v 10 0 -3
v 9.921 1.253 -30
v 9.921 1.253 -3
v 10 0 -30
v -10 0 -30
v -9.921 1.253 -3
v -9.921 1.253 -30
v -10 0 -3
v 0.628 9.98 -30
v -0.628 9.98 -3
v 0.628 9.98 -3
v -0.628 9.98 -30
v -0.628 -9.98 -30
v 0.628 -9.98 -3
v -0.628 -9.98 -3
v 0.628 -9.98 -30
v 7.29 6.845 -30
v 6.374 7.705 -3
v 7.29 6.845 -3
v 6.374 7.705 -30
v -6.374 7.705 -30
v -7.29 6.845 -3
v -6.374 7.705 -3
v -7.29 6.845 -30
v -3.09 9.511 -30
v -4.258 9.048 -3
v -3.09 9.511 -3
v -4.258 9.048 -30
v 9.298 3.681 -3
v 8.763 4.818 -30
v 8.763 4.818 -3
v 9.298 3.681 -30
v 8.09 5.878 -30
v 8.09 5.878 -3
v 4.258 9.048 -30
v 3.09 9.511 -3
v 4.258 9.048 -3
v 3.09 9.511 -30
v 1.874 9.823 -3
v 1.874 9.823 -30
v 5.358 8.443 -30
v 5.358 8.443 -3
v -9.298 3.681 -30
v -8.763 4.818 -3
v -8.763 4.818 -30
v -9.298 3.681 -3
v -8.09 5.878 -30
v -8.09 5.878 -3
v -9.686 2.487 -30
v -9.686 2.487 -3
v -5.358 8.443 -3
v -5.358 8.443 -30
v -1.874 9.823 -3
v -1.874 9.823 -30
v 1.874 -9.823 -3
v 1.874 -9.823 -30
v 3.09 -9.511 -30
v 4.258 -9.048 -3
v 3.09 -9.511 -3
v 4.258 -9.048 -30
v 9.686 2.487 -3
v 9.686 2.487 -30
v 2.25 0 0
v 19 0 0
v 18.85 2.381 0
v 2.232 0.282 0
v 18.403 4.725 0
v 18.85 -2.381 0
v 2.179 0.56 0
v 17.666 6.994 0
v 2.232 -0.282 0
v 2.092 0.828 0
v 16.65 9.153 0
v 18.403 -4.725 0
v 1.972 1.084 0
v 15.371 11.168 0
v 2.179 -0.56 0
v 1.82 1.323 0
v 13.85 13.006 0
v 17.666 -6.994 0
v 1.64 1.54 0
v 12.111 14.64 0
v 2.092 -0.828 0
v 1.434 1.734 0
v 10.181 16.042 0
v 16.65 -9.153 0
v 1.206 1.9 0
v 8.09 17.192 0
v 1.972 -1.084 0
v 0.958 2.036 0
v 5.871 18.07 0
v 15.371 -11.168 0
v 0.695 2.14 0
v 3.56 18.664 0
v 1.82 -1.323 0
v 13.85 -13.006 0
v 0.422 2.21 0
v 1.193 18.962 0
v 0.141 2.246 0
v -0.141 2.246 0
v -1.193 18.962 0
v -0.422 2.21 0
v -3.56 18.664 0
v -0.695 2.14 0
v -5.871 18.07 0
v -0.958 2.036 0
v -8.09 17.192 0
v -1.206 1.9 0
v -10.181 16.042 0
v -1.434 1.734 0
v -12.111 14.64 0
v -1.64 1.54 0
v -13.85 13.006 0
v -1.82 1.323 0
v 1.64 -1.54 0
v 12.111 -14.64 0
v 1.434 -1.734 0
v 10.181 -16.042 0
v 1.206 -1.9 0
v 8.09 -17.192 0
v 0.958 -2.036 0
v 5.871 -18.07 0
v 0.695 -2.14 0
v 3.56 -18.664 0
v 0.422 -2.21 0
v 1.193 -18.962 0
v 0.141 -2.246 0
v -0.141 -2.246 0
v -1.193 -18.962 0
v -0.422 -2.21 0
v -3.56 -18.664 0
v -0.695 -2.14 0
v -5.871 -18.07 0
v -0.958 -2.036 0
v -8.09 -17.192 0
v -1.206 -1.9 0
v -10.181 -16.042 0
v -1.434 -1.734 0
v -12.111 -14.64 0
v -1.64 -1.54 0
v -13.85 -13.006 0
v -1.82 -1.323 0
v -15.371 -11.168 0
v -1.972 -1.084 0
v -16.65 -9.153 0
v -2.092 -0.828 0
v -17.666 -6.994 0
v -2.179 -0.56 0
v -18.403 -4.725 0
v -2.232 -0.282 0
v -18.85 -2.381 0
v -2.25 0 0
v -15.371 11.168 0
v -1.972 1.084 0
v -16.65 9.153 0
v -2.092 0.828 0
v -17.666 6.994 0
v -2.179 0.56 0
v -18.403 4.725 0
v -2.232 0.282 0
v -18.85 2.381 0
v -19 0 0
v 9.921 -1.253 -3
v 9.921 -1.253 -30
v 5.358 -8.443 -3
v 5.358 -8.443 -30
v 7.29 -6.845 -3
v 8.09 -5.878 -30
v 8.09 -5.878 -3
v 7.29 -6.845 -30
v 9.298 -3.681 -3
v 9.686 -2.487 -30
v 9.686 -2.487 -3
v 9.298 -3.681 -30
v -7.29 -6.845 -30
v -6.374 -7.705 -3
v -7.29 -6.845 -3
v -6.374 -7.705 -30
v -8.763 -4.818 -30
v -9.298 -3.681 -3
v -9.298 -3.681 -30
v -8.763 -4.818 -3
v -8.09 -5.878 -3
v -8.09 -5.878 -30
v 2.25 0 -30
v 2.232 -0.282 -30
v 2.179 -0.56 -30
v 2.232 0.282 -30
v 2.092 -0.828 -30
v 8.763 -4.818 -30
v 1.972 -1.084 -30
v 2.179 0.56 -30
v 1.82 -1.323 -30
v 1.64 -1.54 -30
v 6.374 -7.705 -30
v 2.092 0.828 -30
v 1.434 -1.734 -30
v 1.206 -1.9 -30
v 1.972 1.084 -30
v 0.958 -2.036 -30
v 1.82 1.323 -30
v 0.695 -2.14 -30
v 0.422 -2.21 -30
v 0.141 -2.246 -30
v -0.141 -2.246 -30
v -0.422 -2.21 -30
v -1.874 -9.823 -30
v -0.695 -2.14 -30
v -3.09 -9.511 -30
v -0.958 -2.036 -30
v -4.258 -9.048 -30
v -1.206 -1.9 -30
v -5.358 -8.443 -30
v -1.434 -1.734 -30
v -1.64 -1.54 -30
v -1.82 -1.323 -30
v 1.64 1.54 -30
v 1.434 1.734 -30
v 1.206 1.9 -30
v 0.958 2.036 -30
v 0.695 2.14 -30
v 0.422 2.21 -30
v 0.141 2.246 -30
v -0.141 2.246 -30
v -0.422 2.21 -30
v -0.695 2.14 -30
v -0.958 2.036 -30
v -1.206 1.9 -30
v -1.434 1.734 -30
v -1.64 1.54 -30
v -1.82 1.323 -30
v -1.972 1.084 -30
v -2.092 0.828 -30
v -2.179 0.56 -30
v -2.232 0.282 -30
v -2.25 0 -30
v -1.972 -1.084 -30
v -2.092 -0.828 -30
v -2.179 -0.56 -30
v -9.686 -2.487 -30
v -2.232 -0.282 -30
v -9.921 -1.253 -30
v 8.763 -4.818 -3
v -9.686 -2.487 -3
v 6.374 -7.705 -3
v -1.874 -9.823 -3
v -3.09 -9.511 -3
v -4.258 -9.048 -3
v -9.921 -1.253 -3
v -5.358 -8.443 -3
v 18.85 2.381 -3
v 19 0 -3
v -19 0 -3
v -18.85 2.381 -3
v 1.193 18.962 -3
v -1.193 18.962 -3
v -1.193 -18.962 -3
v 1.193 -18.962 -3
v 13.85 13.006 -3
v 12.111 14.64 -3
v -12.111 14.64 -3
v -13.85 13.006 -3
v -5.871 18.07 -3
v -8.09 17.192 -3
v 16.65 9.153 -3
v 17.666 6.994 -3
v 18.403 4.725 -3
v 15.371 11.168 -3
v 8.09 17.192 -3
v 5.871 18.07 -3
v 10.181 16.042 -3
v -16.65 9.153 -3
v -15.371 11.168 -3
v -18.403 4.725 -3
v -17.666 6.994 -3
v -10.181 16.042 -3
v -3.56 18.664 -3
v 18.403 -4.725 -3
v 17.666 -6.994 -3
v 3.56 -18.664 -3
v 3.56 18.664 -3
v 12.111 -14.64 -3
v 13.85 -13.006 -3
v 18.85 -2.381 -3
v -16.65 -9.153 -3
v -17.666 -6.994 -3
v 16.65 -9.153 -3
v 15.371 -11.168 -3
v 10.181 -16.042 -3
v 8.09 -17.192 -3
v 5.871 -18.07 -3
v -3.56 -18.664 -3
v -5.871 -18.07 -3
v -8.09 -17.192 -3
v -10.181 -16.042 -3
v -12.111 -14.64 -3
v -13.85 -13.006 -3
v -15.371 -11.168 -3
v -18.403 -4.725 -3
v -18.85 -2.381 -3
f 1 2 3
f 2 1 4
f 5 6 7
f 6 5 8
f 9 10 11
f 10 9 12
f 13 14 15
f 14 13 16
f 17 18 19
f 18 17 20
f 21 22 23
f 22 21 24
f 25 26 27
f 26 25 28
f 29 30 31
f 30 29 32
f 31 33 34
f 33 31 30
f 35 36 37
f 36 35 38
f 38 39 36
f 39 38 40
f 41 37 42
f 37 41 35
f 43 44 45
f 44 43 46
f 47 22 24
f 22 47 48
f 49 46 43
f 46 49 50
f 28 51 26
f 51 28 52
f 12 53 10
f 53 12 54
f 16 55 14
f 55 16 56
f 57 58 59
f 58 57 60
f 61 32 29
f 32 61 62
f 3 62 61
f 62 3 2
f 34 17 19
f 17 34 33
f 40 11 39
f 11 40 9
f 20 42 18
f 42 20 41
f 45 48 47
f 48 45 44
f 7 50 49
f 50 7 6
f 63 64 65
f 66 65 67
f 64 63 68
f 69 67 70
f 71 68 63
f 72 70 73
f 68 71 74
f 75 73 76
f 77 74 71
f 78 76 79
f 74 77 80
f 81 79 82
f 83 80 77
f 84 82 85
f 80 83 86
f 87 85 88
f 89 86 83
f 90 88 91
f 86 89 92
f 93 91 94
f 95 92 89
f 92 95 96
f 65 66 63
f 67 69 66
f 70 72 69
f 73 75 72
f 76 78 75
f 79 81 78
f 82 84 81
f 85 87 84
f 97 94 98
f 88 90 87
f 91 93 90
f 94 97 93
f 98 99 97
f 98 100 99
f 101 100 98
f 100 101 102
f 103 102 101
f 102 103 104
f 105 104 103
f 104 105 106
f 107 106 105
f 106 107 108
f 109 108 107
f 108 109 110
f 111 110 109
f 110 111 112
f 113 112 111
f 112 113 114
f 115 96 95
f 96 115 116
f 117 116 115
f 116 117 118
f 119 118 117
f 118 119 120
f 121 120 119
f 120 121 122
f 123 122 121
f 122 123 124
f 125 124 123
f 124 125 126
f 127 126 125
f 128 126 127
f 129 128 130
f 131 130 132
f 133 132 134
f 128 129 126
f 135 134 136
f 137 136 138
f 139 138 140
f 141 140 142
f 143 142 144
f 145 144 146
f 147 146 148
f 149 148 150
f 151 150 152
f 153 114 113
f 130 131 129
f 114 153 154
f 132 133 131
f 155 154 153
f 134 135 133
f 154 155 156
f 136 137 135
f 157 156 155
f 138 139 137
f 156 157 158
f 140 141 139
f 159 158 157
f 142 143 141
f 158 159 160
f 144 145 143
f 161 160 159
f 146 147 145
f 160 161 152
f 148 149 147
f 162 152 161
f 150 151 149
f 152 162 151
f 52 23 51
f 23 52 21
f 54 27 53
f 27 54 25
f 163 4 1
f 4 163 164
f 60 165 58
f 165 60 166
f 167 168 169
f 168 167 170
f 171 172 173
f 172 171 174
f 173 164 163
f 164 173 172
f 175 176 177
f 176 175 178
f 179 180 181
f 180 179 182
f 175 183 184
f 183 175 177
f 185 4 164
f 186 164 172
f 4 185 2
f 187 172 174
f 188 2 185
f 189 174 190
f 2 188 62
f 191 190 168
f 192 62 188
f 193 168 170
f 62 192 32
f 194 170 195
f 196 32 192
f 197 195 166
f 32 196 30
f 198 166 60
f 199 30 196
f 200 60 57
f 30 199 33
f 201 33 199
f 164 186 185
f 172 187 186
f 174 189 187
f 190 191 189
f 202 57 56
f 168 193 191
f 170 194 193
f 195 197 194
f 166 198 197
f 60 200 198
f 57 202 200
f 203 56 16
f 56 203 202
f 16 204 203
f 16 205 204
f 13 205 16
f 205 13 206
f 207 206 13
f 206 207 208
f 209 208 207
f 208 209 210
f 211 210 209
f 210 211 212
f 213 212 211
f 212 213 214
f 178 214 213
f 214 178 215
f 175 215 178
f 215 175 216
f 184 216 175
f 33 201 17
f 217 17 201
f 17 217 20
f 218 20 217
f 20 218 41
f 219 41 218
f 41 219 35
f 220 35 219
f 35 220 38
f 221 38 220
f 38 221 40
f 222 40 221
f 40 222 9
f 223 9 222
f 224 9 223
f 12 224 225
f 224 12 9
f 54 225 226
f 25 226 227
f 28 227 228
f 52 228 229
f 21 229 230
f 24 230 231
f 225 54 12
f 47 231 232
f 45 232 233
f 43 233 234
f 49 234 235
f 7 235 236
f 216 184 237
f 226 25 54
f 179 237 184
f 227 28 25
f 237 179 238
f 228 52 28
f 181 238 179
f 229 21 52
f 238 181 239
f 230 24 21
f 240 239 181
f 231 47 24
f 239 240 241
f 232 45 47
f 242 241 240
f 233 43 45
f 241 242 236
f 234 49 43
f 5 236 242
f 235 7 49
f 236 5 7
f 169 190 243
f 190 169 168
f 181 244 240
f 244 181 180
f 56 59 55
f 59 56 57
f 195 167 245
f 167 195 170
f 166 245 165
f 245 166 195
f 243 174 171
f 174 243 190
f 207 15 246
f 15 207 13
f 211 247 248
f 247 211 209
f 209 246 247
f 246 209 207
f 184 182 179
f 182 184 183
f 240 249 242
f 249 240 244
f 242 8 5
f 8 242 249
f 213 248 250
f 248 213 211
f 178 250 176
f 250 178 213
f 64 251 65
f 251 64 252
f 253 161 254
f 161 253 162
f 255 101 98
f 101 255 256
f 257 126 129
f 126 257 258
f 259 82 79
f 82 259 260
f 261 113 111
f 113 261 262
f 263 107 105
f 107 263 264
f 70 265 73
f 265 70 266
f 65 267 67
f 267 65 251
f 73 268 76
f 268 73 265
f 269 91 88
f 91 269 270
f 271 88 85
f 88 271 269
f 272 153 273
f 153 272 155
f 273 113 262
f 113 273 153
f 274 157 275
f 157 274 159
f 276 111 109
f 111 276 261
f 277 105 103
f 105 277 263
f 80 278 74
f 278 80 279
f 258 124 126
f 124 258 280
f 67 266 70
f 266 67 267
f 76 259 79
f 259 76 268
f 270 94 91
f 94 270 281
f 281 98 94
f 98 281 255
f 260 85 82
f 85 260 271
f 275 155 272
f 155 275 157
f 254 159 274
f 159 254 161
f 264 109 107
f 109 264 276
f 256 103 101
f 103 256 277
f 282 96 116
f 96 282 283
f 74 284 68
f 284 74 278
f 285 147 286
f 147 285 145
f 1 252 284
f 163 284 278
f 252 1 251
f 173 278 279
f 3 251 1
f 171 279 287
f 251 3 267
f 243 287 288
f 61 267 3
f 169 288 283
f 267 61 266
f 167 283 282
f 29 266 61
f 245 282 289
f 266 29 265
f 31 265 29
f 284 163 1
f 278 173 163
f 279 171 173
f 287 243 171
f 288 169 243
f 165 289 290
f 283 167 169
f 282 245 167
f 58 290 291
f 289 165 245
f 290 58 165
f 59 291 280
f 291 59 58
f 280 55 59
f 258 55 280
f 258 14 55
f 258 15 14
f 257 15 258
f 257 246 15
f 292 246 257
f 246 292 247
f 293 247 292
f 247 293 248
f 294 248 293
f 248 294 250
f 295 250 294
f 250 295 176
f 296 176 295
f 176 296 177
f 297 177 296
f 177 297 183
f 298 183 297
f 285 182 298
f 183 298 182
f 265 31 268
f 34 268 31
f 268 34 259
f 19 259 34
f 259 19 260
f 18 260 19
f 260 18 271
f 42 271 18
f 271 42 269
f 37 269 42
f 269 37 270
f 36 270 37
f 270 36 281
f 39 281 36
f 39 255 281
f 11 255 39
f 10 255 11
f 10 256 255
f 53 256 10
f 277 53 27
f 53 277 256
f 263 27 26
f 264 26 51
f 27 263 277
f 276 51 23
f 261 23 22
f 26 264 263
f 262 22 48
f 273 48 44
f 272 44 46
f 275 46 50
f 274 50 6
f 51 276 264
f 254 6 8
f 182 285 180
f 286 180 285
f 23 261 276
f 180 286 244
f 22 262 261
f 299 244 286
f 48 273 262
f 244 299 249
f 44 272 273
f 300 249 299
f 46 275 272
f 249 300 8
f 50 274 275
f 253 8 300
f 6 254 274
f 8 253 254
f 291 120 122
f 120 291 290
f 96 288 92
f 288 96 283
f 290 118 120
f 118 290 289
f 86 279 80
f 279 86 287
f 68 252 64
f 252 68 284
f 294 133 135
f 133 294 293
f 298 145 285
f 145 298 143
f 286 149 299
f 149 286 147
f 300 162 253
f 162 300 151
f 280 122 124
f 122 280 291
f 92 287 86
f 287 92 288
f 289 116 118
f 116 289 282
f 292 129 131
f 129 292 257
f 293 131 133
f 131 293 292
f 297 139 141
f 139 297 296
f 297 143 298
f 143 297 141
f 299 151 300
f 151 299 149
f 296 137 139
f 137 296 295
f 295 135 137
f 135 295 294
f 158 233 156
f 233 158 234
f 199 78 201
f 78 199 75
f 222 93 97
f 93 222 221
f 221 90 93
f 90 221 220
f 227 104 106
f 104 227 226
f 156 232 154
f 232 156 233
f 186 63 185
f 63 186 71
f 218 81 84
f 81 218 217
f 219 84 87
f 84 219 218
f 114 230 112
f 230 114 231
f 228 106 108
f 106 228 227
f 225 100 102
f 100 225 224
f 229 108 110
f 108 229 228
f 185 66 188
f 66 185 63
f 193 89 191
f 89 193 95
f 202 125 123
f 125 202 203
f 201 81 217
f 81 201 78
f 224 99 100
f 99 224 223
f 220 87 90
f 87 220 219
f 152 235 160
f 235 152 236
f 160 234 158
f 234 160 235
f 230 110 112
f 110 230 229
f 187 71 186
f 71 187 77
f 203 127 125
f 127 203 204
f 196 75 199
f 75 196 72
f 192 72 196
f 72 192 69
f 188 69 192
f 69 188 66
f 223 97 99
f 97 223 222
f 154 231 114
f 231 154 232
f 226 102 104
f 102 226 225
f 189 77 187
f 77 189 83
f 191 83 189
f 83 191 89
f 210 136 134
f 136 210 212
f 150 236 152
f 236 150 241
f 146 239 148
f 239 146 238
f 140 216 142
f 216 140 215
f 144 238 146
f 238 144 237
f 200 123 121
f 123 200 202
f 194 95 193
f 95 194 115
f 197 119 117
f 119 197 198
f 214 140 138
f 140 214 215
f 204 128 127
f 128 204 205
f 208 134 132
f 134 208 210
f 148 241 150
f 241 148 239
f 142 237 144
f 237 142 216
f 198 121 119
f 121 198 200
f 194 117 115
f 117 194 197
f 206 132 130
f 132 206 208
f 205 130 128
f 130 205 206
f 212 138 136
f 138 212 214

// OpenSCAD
$fn = 50;


difference() {
	union() {
		translate(v = [0, 0, -30.0000000000]) {
			cylinder(h = 30, r = 10.0000000000);
		}
		translate(v = [0, 0, -3.0000000000]) {
			cylinder(h = 3, r = 19.0000000000);
		}
	}
	union() {
		#translate(v = [0, 0, -30]) {
			cylinder(h = 30, r = 2.2500000000);
		}
	}
}
